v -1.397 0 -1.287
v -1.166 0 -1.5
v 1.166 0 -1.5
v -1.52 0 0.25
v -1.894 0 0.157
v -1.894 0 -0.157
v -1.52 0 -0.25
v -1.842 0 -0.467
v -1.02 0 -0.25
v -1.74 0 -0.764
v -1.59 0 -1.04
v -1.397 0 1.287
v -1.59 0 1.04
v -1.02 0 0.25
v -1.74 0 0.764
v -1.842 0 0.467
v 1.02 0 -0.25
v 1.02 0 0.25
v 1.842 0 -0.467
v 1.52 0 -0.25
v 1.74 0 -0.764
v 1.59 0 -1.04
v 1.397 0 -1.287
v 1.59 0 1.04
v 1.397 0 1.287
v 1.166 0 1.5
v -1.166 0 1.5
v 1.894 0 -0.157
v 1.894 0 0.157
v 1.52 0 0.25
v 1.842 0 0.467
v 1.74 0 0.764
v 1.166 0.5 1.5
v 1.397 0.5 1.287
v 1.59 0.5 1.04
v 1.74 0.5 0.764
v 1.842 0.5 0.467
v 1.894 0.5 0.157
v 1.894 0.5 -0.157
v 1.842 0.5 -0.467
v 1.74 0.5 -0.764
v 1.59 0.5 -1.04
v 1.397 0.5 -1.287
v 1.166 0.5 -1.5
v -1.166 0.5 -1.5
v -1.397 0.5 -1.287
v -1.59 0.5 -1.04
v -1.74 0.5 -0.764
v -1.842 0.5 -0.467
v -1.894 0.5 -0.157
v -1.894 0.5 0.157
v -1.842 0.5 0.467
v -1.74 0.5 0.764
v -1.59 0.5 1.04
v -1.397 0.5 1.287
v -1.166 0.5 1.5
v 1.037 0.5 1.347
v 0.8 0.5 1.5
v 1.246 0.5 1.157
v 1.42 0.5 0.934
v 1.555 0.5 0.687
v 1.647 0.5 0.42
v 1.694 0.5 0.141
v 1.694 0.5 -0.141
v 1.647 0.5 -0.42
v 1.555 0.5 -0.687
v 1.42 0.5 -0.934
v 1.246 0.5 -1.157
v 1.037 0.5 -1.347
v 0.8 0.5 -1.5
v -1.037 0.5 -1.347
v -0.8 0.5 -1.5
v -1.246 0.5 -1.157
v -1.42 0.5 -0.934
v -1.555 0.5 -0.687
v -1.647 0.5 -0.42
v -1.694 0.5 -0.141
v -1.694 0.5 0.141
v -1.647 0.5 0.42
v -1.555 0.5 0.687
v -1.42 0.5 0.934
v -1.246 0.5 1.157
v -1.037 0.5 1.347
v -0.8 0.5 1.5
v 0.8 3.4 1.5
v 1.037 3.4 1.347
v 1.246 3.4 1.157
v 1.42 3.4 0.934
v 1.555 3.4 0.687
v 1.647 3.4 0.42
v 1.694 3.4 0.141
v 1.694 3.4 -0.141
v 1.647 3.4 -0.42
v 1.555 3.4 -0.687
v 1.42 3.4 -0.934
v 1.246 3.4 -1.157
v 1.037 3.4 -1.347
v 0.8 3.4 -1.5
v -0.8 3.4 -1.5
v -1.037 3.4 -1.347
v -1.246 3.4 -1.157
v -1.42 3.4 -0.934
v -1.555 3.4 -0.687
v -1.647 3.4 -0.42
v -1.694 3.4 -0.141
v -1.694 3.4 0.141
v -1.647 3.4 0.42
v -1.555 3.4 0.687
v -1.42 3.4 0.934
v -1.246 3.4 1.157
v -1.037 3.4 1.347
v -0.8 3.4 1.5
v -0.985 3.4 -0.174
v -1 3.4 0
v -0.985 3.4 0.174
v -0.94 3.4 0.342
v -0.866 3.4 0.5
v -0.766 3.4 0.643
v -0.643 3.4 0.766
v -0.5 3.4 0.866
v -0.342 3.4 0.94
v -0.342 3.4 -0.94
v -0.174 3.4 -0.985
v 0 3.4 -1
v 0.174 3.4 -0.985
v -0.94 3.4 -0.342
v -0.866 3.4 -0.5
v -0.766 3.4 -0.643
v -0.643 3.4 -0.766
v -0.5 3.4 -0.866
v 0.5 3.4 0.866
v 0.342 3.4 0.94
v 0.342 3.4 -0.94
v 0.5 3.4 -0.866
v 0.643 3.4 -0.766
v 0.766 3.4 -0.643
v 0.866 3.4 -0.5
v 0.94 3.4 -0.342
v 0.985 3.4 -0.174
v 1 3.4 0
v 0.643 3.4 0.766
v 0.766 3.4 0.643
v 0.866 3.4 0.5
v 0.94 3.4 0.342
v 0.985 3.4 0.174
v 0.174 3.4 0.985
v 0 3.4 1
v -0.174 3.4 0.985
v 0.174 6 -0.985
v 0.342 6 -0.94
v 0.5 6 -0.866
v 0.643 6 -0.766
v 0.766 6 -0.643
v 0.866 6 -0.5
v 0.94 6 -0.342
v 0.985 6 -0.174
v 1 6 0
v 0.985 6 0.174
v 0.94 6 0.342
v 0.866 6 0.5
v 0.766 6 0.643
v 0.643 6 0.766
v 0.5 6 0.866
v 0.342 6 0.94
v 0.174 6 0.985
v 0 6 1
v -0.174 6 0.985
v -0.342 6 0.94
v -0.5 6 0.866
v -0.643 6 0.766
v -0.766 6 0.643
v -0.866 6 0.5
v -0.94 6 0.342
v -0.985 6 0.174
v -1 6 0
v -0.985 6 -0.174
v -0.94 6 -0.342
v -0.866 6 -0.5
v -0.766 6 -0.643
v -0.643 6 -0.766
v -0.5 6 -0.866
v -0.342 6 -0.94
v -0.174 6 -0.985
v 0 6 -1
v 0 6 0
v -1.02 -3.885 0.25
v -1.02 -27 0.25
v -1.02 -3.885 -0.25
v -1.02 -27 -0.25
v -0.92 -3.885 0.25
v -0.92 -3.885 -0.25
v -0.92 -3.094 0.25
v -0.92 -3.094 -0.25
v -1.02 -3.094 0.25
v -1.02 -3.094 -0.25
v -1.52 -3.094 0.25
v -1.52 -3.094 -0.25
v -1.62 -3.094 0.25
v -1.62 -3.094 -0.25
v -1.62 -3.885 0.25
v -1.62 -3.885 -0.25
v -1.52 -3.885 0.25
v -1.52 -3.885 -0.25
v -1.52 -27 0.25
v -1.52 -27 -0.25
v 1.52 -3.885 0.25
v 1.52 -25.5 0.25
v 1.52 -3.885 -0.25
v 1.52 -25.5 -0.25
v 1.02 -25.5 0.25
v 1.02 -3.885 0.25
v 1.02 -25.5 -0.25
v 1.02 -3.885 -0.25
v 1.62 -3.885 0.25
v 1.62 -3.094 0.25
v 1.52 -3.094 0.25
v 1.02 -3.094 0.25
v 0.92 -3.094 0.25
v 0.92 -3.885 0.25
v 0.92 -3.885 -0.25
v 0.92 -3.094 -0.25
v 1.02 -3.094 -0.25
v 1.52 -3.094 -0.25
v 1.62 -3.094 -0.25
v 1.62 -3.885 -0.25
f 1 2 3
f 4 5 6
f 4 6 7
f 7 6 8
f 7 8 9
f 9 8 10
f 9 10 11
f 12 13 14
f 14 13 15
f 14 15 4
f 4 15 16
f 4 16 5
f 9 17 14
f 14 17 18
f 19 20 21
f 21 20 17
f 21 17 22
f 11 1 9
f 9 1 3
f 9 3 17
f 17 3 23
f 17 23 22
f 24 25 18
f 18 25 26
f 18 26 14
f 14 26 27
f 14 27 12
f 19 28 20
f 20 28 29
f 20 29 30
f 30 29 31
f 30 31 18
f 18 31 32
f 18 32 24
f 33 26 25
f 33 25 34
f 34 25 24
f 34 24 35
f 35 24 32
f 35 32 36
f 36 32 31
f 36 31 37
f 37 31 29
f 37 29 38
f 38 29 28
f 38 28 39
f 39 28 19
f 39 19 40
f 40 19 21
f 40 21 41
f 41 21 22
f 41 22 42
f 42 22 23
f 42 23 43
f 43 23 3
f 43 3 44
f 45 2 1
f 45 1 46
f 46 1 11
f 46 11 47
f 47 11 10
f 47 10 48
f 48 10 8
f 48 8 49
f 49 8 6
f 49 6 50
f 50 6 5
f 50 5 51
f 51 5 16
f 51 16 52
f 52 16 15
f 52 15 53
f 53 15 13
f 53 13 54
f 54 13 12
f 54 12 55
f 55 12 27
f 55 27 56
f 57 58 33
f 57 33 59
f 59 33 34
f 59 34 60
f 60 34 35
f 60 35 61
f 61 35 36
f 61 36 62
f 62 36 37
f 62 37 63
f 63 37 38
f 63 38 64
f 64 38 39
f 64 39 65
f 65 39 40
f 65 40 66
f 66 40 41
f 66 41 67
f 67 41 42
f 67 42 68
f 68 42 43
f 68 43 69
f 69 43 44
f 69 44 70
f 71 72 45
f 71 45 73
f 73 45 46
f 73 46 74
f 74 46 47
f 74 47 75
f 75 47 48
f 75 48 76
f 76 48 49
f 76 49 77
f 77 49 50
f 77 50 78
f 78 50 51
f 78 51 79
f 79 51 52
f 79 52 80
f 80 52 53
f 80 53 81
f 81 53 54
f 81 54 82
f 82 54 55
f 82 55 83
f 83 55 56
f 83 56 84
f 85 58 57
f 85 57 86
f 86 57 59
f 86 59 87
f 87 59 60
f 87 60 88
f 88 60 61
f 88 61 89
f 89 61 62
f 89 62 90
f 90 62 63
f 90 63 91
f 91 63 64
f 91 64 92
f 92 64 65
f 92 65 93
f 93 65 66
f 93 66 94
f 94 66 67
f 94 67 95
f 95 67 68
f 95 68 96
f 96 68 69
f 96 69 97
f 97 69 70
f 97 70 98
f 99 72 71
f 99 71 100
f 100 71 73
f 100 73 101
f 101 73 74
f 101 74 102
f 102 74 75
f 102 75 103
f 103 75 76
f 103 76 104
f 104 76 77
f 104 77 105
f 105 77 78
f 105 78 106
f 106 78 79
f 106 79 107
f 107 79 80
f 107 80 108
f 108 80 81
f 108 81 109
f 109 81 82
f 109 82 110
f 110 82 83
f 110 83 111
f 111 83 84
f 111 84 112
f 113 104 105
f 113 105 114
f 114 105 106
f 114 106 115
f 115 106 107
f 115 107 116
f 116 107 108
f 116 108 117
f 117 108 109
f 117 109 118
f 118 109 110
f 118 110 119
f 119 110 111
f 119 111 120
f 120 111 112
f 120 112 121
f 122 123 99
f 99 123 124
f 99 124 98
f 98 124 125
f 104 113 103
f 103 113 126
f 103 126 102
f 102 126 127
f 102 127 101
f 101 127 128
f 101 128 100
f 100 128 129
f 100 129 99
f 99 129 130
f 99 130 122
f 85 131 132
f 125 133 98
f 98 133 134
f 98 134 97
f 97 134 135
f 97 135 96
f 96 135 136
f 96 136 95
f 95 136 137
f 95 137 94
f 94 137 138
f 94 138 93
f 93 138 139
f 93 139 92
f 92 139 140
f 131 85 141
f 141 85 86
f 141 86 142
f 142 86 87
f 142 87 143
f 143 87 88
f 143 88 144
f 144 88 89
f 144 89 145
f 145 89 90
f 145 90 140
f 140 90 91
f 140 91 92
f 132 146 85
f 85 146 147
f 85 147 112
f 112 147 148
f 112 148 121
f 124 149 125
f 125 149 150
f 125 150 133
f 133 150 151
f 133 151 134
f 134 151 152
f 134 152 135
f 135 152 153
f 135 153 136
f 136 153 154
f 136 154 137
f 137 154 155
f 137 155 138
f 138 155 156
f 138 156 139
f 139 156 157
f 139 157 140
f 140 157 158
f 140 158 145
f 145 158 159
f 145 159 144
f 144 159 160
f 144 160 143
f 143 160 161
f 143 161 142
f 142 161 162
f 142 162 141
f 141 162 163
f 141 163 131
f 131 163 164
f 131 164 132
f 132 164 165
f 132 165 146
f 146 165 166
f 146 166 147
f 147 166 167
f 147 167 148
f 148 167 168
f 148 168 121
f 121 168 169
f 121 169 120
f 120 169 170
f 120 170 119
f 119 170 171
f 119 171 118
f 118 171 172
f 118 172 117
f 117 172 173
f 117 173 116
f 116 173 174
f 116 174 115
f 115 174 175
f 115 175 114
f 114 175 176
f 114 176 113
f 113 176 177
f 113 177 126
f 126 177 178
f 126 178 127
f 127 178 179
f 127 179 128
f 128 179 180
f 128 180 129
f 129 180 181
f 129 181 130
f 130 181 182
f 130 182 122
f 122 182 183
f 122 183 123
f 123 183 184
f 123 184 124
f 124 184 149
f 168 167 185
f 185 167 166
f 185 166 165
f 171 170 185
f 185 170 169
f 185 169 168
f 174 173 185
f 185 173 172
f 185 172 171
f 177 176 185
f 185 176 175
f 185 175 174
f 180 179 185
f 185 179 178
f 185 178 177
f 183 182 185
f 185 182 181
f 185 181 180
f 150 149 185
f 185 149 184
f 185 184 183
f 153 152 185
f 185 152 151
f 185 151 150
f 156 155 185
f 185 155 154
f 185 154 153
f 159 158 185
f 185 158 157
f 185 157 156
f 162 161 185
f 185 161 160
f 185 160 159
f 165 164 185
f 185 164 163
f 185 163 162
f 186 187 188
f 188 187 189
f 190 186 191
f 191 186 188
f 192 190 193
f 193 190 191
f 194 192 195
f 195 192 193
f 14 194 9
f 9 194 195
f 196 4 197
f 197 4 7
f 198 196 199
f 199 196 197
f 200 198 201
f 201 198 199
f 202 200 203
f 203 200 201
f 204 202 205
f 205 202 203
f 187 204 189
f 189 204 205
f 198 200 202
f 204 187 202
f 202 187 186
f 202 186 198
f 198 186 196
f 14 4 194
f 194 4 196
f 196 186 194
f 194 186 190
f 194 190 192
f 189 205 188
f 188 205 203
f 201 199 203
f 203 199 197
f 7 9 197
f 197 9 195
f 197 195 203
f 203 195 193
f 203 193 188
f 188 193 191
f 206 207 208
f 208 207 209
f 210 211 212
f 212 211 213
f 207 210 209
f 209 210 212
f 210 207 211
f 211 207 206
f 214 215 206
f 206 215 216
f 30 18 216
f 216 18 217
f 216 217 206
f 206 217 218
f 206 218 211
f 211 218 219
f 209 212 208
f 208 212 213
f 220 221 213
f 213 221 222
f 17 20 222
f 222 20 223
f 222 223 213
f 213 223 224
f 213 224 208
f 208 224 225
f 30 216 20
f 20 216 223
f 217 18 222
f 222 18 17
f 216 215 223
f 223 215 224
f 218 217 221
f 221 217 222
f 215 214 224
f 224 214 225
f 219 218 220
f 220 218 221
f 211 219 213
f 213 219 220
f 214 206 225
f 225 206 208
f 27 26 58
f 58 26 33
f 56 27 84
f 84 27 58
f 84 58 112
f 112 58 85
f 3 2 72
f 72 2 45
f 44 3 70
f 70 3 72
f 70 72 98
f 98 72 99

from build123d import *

# Parameters (mm, degrees)
SKETCH_1_R          = 1.9
EXTRUDE_1_DEPTH     = 0.5
SKETCH_2_R          = 1.7
EXTRUDE_2_DEPTH     = 2.9
SKETCH_3_R          = 1
EXTRUDE_3_DEPTH     = 2.6
SKETCH_4_W          = 0.5
SKETCH_4_H          = 25.5
SKETCH_4_H_2        = 27
SKETCH_4_W_2        = 0.7
SKETCH_4_H_3        = 0.791326506
EXTRUDE_4_DEPTH     = 0.25
CUT_EXTRUDE_2_REACH = 29.133
SKETCH_5_W          = 6.962557402
SKETCH_5_H          = 5.683720328
SKETCH_5_W_2        = 5.258758642
SKETCH_5_H_2        = 3


with BuildPart() as part:
    # Эскиз1 → Бобышка-Вытянуть1 (new body)
    with BuildSketch(Plane(origin=(0, 0, 0), x_dir=(1, 0, 0), z_dir=(0, 1, 0))):
        with Locations(Location((0, 0, 0), (0, 0, 270))):
            Circle(SKETCH_1_R)
    extrude(amount=EXTRUDE_1_DEPTH)

    # Эскиз2 → Бобышка-Вытянуть2 (add)
    with BuildSketch(Plane(origin=(0, 0.5, 0), x_dir=(1, 0, 0), z_dir=(0, 1, 0))):
        with Locations(Location((0, 0, 0), (0, 0, 270))):
            Circle(SKETCH_2_R)
    extrude(amount=EXTRUDE_2_DEPTH)

    # Эскиз3 → Бобышка-Вытянуть3 (add)
    with BuildSketch(Plane(origin=(0, 3.4, 0), x_dir=(1, 0, 0), z_dir=(0, 1, 0))):
        with Locations(Location((0, 0, 0), (0, 0, 270))):
            Circle(SKETCH_3_R)
    extrude(amount=EXTRUDE_3_DEPTH)

    # Эскиз4 → Бобышка-Вытянуть4 (add, symmetric)
    with BuildSketch(Plane.XY):
        with Locations((1.27, -12.75)):
            Rectangle(SKETCH_4_W, SKETCH_4_H)
        with Locations((-1.27, -13.5)):
            Rectangle(SKETCH_4_W, SKETCH_4_H_2)
        with Locations((1.27, -3.489413043)):
            Rectangle(SKETCH_4_W_2, SKETCH_4_H_3)
        with Locations((-1.27, -3.489413043)):
            Rectangle(SKETCH_4_W_2, SKETCH_4_H_3)
    extrude(amount=EXTRUDE_4_DEPTH, both=True)

    # Вырез-Вытянуть2: up to this face of the body (flat: up to its plane)
    cut_extrude_2_end = Plane(part.part.faces().sort_by_distance((0, 6, 0))[0])
    # Эскиз5 → Вырез-Вытянуть2 (cut, up to the picked face)
    with BuildSketch(Plane.XZ, mode=Mode.PRIVATE) as cut_extrude_2_sk1:
        Rectangle(SKETCH_5_W, SKETCH_5_H)
        Rectangle(SKETCH_5_W_2, SKETCH_5_H_2, mode=Mode.SUBTRACT)
    cut_extrude_2_tool1 = split(extrude(cut_extrude_2_sk1.sketch, amount=-CUT_EXTRUDE_2_REACH, mode=Mode.PRIVATE), bisect_by=cut_extrude_2_end, keep=Keep.BOTH, mode=Mode.PRIVATE)
    add(cut_extrude_2_tool1.solids().sort_by(Axis((0, 0, -2.751981), (0, 1, 0)))[0], mode=Mode.SUBTRACT)


solid = part.part
